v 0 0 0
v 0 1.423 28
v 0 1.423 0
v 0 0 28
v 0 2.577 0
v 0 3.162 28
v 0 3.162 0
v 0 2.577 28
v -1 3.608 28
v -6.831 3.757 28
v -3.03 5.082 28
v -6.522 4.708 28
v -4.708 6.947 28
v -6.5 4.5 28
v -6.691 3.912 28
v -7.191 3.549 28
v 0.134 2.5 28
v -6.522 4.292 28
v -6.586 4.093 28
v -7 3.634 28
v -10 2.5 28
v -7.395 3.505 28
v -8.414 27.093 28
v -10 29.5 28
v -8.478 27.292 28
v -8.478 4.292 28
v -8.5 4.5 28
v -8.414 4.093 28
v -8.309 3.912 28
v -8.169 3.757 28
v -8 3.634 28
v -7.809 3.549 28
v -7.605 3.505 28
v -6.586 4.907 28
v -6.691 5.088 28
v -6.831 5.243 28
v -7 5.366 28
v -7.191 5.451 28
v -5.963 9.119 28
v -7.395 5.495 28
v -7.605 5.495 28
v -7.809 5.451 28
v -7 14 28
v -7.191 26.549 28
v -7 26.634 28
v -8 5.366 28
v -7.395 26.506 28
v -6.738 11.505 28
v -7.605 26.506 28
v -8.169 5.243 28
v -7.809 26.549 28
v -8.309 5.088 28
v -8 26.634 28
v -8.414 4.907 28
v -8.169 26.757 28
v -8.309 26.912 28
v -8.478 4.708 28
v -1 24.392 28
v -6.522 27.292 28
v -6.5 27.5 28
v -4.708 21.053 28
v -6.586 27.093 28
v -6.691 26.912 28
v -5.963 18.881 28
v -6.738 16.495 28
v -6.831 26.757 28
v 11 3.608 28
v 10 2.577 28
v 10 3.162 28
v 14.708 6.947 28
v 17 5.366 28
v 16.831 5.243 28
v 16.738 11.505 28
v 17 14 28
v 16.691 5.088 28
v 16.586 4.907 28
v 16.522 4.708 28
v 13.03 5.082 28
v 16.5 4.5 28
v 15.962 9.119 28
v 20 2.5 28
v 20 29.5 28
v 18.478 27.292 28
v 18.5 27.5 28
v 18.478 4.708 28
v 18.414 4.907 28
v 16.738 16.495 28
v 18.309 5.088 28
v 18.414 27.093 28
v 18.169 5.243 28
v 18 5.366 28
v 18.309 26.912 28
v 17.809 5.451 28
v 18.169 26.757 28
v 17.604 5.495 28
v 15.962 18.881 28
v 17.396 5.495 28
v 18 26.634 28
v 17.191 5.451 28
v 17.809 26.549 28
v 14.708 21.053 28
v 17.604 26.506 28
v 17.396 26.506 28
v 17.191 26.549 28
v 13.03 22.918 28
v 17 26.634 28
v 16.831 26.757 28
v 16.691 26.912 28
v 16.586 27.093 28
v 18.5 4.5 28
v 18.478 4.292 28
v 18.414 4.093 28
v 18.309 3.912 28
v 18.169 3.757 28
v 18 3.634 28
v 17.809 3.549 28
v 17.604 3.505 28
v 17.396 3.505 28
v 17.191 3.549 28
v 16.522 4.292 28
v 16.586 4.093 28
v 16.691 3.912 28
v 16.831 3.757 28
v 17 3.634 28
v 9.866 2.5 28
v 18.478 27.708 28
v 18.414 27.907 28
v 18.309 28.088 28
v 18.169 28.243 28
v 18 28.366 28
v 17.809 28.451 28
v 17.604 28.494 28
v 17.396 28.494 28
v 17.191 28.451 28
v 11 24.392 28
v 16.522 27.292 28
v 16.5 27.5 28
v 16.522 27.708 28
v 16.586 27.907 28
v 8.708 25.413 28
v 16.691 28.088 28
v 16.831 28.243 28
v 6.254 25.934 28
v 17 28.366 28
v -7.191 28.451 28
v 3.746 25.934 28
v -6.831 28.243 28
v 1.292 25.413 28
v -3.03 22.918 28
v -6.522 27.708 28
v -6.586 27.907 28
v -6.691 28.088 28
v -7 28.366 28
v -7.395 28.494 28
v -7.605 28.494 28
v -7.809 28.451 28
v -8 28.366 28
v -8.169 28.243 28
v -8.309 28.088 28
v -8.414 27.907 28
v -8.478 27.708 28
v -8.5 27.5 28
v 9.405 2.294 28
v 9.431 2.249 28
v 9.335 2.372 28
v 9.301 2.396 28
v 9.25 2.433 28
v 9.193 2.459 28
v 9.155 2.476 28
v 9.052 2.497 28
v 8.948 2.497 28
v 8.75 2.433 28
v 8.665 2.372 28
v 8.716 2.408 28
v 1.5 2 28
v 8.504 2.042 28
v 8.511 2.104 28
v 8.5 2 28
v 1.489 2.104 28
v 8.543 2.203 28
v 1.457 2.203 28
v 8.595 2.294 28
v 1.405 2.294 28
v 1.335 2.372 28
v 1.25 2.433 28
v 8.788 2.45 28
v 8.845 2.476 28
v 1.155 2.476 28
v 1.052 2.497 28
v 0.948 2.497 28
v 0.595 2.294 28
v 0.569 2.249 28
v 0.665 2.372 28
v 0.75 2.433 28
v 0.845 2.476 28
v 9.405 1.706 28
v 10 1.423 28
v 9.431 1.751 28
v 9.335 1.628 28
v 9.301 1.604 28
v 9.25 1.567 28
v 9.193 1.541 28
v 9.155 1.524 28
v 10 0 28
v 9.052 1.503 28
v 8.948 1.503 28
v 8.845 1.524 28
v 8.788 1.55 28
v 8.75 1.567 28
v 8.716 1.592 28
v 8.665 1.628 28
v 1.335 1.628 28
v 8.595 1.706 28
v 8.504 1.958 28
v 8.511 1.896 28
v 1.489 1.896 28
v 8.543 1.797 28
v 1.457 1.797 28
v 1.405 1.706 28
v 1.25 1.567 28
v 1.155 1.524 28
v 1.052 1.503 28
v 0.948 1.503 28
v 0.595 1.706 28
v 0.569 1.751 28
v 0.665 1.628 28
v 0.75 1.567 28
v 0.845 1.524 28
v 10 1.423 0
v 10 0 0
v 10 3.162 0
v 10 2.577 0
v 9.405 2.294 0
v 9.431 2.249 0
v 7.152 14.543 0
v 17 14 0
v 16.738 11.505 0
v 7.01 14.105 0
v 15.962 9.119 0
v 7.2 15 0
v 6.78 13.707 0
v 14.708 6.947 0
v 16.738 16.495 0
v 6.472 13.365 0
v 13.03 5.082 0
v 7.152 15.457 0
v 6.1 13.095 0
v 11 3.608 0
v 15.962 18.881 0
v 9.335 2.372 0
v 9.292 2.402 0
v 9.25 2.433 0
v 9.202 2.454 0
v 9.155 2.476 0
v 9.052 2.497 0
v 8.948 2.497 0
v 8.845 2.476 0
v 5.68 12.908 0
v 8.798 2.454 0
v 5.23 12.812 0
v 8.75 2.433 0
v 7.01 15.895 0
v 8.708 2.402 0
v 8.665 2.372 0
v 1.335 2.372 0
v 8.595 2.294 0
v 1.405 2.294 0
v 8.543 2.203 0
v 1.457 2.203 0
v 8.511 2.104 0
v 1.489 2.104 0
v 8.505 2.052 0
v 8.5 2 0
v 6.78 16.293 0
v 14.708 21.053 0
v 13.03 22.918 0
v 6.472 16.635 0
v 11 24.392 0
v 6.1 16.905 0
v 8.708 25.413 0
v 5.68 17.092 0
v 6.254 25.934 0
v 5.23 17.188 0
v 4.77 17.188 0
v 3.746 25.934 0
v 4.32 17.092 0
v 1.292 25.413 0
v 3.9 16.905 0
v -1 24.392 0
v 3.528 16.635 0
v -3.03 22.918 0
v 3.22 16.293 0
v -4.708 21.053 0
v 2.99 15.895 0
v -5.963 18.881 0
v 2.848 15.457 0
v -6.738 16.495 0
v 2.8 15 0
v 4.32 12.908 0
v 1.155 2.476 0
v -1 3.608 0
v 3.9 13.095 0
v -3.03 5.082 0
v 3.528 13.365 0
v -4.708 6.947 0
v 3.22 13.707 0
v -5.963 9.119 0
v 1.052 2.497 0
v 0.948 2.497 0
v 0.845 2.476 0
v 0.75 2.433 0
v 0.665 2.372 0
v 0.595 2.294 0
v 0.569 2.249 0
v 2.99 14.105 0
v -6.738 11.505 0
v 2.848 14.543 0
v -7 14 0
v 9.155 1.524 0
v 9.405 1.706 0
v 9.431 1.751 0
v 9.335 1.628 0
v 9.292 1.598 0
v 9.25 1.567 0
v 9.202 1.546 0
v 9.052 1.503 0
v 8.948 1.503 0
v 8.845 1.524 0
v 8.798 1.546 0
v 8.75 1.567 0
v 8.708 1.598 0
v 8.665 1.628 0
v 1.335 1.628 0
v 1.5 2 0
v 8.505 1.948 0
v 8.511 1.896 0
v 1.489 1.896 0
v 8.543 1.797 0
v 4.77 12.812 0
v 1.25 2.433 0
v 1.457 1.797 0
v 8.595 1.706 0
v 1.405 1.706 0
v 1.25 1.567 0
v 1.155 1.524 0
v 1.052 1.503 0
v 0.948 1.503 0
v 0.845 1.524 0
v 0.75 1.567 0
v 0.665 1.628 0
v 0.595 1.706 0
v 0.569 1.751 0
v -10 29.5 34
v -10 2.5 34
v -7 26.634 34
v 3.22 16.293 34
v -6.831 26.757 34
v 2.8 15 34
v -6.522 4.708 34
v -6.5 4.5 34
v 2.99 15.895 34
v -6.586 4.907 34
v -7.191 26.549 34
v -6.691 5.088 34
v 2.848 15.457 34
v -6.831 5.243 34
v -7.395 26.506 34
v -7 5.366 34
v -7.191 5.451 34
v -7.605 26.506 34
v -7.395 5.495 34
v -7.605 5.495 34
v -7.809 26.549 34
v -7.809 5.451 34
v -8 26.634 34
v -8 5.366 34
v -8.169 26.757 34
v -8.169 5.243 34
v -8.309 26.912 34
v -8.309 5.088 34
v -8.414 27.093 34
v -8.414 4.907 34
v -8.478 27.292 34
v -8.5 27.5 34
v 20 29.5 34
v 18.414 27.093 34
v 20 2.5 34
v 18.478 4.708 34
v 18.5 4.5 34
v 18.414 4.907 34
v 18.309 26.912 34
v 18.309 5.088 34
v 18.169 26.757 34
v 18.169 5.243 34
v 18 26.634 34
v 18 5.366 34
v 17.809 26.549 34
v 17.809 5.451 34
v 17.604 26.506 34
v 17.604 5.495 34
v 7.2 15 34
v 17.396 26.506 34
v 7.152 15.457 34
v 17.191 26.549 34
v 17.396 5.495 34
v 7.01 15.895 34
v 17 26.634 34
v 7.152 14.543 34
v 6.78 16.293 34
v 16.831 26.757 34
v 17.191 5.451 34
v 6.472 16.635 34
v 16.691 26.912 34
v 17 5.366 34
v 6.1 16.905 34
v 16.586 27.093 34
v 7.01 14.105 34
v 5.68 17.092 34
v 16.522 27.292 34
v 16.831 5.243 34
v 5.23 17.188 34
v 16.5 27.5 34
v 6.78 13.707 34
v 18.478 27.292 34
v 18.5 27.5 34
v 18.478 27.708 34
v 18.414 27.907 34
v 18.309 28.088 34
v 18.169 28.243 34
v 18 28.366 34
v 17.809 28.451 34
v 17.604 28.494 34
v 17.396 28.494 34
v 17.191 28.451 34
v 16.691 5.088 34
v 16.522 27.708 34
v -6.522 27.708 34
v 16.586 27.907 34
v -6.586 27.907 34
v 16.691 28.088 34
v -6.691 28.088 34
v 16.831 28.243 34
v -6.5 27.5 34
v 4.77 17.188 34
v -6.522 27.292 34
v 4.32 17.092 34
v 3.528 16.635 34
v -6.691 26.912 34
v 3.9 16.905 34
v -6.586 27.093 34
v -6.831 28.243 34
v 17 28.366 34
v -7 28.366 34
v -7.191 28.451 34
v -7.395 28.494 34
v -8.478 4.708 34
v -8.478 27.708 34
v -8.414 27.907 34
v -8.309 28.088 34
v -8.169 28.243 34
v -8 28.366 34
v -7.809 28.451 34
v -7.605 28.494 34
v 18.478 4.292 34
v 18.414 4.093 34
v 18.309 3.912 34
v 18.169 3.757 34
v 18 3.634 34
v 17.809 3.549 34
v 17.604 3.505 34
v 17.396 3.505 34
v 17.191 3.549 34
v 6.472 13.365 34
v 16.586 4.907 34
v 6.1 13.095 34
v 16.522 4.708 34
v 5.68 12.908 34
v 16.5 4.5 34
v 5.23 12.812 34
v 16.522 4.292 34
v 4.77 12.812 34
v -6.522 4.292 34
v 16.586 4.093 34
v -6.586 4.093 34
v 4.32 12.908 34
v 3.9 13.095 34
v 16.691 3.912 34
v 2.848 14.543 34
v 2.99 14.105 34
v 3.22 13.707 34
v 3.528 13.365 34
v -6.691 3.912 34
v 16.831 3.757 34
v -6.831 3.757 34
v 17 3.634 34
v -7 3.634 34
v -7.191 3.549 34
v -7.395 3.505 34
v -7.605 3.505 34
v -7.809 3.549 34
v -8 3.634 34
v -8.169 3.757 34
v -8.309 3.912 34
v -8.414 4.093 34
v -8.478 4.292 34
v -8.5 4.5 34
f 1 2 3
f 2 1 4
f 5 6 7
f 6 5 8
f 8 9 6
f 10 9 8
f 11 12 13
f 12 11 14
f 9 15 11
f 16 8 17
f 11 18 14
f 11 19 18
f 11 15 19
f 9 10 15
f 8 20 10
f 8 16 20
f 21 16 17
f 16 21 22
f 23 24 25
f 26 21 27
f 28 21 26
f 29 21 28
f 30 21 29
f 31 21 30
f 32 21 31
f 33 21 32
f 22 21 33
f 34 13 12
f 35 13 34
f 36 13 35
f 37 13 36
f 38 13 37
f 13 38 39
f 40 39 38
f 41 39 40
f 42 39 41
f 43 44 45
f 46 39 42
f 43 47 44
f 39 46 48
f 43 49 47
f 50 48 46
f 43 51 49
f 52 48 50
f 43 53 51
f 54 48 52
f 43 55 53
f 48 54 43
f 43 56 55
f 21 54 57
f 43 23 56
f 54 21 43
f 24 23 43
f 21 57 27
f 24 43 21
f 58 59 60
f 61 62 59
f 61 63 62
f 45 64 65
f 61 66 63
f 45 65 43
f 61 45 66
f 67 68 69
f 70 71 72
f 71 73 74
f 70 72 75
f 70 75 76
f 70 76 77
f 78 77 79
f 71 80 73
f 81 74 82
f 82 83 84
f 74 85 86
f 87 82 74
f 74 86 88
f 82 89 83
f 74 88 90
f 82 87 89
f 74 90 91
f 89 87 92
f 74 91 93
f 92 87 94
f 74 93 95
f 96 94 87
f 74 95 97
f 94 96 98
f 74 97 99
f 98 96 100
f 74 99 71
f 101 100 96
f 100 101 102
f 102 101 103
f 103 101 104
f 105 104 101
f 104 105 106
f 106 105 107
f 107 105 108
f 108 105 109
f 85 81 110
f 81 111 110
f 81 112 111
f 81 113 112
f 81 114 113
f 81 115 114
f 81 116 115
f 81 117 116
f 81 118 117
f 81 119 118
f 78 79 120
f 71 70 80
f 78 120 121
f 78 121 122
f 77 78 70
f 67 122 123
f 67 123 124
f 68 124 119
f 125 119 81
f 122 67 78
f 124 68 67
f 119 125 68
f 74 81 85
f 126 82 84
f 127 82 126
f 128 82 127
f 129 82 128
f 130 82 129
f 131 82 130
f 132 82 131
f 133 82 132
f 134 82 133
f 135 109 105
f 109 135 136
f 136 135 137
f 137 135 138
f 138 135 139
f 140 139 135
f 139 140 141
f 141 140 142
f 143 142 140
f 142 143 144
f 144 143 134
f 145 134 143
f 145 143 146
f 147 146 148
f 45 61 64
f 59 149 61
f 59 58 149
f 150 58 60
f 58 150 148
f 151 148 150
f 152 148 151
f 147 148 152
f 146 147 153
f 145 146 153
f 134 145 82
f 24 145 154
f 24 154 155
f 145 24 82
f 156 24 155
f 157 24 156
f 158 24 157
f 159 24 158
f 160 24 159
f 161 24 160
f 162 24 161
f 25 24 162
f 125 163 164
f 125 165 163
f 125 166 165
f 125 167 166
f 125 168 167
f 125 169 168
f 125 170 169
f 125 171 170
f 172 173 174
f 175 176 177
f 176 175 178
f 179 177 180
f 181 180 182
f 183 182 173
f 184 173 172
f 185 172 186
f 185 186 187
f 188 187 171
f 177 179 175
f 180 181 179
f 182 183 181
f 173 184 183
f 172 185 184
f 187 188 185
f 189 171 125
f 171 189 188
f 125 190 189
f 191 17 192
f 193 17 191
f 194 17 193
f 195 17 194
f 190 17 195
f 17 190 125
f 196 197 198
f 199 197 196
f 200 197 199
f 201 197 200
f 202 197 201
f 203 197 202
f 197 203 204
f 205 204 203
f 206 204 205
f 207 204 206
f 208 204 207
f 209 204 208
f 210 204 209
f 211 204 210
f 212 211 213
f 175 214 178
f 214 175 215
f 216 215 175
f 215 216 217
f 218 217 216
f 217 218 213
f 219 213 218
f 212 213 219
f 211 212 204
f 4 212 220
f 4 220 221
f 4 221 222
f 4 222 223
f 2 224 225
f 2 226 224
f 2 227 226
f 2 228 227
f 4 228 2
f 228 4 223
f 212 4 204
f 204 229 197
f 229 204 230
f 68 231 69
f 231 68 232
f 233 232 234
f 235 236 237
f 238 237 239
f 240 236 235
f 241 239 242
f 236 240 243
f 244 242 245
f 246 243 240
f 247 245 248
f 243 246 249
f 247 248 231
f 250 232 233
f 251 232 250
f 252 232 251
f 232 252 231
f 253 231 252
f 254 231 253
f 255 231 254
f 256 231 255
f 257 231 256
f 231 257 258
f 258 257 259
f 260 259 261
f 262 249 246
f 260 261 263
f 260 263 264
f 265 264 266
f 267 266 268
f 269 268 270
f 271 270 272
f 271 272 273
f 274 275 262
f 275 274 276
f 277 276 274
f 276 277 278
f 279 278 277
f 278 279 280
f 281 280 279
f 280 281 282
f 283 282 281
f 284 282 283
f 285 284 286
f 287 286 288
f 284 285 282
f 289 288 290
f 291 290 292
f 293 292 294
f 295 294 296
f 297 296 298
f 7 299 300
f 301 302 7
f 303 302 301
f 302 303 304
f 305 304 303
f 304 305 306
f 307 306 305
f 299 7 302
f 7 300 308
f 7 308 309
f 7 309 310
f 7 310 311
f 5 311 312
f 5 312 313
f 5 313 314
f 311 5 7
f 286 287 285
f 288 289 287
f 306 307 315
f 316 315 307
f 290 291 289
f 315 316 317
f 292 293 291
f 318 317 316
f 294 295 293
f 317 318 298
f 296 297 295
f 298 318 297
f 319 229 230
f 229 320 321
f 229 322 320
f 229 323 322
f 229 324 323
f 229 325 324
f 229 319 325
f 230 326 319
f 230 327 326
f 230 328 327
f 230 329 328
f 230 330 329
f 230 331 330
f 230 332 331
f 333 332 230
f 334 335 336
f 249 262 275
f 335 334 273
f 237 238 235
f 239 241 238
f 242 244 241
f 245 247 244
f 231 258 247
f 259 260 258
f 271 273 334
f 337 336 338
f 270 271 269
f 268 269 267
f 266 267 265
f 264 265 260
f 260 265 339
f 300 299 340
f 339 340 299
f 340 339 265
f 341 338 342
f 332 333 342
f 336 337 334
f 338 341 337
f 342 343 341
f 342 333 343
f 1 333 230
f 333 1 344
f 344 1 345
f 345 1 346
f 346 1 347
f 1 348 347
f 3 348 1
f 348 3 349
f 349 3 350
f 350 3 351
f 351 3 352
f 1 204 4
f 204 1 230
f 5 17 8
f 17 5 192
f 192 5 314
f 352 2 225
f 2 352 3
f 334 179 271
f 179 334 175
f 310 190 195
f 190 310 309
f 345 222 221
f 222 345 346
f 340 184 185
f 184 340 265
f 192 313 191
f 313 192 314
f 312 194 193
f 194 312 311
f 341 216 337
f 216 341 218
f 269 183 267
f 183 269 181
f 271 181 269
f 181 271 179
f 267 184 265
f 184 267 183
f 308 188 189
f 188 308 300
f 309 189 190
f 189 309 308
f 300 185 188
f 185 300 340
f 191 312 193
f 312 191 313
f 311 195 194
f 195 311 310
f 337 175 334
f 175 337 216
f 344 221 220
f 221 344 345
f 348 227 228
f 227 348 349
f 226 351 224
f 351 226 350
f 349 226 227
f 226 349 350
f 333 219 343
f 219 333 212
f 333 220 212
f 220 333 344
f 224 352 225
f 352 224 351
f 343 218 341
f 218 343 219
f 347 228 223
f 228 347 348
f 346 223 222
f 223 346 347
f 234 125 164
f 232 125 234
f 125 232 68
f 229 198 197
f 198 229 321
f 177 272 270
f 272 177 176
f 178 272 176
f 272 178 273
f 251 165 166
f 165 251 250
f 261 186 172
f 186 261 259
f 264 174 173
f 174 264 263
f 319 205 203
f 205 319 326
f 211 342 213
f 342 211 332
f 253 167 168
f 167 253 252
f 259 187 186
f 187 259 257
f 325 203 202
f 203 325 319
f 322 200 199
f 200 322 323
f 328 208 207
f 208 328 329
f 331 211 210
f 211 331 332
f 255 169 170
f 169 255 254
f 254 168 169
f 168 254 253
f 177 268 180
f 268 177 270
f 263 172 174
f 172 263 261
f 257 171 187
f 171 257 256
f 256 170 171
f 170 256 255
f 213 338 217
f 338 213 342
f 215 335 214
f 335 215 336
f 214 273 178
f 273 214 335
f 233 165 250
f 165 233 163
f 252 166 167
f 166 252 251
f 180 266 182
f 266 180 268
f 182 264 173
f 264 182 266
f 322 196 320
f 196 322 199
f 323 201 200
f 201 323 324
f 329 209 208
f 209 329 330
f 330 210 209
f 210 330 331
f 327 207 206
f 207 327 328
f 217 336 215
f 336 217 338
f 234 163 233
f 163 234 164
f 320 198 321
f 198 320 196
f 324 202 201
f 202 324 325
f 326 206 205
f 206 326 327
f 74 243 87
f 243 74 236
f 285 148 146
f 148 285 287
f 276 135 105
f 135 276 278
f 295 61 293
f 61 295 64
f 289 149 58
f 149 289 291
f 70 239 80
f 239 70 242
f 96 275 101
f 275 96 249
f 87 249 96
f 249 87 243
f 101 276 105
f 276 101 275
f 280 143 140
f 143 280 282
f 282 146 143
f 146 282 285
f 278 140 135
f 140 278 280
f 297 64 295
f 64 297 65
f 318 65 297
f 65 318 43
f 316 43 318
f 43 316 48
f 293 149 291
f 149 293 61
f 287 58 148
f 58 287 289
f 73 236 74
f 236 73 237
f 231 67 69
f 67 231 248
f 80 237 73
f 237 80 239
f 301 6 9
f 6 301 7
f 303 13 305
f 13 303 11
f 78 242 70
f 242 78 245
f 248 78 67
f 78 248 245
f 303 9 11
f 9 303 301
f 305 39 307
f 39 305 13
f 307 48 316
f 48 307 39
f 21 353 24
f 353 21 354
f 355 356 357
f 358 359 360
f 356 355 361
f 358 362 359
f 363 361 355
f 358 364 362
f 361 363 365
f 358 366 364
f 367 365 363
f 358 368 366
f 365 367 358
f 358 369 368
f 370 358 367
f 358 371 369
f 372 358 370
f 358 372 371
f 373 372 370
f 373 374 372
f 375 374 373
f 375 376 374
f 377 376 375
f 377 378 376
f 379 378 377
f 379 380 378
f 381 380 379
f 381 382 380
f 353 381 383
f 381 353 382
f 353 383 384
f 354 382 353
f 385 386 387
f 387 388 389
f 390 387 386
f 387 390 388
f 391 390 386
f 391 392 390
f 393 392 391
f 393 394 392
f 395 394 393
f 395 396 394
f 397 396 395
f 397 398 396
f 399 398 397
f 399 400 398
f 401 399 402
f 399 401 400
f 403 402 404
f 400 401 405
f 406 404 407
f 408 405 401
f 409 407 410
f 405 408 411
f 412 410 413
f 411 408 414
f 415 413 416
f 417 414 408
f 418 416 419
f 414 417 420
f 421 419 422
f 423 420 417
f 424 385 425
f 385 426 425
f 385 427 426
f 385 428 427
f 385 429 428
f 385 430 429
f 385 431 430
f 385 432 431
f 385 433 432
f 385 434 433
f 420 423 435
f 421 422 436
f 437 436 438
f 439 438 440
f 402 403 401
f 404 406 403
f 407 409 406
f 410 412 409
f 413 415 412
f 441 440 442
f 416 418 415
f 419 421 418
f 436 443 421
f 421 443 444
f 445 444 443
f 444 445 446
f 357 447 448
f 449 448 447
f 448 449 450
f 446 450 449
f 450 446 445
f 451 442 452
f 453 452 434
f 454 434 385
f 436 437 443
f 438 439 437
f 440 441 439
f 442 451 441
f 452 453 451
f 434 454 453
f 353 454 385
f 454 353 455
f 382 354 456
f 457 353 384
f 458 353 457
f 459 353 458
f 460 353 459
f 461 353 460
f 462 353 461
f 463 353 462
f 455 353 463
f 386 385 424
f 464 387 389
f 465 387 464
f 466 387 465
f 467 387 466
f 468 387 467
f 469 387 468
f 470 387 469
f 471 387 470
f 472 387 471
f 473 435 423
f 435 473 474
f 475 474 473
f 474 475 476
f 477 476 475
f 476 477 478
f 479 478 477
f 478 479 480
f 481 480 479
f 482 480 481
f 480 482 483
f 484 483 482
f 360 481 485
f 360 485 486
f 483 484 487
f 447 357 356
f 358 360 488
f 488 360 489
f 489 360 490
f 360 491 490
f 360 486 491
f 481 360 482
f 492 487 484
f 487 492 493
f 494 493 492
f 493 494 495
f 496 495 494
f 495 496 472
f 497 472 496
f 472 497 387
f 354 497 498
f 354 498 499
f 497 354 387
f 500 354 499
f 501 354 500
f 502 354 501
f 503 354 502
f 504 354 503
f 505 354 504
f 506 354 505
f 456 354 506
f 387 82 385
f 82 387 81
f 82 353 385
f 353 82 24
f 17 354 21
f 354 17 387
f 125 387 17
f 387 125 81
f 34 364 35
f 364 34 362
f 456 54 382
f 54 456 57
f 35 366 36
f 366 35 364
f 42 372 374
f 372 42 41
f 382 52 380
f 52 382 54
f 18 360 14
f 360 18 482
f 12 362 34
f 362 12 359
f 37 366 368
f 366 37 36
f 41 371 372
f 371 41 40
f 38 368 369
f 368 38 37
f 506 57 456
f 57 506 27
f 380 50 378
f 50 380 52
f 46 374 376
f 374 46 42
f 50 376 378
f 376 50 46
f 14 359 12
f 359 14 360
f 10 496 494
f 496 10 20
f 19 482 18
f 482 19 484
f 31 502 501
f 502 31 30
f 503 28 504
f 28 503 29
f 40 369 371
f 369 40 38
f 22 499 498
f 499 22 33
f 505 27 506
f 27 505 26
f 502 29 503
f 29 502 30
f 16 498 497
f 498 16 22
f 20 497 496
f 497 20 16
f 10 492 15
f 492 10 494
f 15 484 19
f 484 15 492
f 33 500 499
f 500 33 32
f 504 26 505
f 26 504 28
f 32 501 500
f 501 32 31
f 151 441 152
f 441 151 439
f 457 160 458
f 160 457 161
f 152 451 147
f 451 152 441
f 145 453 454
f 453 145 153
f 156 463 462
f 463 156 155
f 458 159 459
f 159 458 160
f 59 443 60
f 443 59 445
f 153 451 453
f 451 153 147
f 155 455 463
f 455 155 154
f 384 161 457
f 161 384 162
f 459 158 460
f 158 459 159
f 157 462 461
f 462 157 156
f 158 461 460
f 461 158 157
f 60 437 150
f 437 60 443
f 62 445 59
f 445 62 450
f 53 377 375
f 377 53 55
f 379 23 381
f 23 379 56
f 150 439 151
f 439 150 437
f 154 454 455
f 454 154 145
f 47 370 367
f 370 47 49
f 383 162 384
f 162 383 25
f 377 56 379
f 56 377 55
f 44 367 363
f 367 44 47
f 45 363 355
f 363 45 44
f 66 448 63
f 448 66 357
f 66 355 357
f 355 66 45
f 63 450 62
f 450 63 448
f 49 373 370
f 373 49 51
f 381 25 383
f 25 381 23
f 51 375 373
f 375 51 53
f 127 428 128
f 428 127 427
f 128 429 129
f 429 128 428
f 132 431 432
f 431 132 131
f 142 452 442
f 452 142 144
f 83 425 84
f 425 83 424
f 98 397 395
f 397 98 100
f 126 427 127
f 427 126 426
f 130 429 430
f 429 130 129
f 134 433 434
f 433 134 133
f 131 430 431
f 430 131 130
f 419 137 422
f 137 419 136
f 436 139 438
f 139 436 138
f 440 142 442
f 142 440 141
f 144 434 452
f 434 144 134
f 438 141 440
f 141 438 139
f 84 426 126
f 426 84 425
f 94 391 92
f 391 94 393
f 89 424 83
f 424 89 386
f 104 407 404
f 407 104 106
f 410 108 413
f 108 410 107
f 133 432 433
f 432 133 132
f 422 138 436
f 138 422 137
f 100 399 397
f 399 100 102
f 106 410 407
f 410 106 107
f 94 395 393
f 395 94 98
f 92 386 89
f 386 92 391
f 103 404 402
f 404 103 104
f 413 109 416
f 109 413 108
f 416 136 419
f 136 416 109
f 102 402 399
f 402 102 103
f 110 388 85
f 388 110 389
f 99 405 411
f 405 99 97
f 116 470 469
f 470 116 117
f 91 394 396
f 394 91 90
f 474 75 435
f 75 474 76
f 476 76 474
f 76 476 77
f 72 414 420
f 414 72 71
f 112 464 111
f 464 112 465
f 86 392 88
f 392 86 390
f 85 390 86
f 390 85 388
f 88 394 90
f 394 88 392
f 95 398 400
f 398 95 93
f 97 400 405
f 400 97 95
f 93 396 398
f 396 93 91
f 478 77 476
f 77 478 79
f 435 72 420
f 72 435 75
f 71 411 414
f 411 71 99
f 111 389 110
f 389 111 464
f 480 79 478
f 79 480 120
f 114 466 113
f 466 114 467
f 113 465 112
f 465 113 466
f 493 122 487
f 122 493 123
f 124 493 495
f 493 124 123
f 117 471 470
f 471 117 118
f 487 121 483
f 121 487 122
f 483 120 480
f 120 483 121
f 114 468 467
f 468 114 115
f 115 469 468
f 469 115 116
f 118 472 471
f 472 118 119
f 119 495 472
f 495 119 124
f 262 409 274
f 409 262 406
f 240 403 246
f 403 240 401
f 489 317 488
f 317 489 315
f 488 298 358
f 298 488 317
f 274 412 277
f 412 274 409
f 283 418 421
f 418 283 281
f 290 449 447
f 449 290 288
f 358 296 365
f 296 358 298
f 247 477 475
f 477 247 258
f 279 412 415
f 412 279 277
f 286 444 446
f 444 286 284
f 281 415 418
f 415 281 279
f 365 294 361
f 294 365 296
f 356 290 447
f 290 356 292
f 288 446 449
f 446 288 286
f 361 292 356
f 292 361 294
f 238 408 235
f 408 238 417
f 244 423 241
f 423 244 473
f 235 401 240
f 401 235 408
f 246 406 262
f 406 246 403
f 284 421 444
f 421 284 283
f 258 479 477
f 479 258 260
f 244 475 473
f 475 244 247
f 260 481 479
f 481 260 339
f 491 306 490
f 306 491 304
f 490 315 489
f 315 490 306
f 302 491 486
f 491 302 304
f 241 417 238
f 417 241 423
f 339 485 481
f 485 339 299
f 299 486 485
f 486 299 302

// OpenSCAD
// bolt used 2mm
$fn=30;
weight=5;
length=10;
height=28;
difference(){
    union(){
        difference (){
            cube([length,weight,height]);
            translate([0,2,0])cylinder(r=1,h=height*10,center=true,$fn=3);
            translate([1,2,0])cylinder(r=0.5,h=height*10,center=true);
            rotate([0,180,0])translate([-10,2,0])cylinder(r=1,h=height*10,center=true,$fn=3);
            rotate([0,180,0])translate([-9,2,0])cylinder(r=0.5,h=height*10,center=true);
        }
        translate([5,14,0])cylinder(r=length+2,h=height);
        translate([-10,2.5,28])cube([length*3,weight+22,6]);
  
    }
    translate([-7.5,4.5,30])cylinder(r=1,h=height,center=true);
    translate([-7.5,27.5,30])cylinder(r=1,h=height,center=true);
    translate([17.5,27.5,30])cylinder(r=1,h=height,center=true);
    translate([17.5,4.5,30])cylinder(r=1,h=height,center=true);
    translate([5,15,0])cylinder(r=2*1.1,h=height*10,center=true);
}
